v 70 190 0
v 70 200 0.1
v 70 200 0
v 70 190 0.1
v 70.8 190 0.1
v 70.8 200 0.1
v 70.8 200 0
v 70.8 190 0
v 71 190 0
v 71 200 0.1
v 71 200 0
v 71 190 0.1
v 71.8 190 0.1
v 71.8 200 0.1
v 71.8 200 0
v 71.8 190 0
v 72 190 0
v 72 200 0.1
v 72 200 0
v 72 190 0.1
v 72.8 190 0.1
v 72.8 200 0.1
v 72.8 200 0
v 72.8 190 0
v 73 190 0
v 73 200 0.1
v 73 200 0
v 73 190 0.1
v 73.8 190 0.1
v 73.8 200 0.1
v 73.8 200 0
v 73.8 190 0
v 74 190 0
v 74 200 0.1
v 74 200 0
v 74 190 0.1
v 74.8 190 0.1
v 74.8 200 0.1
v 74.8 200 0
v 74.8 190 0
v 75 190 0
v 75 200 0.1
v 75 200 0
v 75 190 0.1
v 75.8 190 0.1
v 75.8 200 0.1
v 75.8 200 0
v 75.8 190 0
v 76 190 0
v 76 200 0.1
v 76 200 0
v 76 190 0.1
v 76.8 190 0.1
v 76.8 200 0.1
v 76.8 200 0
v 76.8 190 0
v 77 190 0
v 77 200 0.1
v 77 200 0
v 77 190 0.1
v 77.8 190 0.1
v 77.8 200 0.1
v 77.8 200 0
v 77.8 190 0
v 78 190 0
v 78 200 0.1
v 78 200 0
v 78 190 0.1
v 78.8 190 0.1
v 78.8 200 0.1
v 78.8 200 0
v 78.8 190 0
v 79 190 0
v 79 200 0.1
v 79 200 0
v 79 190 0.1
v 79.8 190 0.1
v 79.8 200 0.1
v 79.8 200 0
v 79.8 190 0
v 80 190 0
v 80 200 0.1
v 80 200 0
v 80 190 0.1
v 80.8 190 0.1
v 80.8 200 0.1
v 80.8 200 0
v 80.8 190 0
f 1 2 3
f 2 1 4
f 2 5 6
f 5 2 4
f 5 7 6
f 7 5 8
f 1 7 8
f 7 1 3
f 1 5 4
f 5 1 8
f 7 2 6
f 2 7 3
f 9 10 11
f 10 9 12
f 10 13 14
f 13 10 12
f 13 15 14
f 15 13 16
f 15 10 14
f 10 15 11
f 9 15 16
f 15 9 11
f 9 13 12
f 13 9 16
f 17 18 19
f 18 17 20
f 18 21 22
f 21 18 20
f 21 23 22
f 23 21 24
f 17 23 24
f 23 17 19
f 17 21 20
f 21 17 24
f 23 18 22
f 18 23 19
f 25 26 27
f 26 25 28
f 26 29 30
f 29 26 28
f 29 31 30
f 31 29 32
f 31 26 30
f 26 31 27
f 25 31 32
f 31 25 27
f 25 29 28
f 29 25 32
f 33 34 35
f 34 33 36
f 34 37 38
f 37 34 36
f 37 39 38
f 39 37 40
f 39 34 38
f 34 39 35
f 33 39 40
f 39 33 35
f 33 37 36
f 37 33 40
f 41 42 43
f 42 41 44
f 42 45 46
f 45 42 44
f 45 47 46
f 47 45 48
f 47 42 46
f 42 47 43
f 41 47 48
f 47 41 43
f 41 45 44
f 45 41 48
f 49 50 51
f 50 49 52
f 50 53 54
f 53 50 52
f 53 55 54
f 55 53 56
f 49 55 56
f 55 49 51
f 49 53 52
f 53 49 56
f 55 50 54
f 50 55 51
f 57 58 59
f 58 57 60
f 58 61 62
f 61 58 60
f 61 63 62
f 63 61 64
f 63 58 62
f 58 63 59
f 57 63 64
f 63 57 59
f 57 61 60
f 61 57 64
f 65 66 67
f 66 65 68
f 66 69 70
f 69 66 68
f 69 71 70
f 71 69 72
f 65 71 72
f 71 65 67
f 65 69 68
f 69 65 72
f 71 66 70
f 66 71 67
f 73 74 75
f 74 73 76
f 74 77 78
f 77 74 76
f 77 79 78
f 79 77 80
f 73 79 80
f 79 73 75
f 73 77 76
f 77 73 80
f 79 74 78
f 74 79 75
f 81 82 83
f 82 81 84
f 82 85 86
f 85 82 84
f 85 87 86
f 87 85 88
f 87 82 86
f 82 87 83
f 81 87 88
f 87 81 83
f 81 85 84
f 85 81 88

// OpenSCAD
translate([10+60,10+180,0])
        for (i = [0 : 10]){
            translate([i,0,0])
                cube(size = [0.8,10,0.1]);
    }
